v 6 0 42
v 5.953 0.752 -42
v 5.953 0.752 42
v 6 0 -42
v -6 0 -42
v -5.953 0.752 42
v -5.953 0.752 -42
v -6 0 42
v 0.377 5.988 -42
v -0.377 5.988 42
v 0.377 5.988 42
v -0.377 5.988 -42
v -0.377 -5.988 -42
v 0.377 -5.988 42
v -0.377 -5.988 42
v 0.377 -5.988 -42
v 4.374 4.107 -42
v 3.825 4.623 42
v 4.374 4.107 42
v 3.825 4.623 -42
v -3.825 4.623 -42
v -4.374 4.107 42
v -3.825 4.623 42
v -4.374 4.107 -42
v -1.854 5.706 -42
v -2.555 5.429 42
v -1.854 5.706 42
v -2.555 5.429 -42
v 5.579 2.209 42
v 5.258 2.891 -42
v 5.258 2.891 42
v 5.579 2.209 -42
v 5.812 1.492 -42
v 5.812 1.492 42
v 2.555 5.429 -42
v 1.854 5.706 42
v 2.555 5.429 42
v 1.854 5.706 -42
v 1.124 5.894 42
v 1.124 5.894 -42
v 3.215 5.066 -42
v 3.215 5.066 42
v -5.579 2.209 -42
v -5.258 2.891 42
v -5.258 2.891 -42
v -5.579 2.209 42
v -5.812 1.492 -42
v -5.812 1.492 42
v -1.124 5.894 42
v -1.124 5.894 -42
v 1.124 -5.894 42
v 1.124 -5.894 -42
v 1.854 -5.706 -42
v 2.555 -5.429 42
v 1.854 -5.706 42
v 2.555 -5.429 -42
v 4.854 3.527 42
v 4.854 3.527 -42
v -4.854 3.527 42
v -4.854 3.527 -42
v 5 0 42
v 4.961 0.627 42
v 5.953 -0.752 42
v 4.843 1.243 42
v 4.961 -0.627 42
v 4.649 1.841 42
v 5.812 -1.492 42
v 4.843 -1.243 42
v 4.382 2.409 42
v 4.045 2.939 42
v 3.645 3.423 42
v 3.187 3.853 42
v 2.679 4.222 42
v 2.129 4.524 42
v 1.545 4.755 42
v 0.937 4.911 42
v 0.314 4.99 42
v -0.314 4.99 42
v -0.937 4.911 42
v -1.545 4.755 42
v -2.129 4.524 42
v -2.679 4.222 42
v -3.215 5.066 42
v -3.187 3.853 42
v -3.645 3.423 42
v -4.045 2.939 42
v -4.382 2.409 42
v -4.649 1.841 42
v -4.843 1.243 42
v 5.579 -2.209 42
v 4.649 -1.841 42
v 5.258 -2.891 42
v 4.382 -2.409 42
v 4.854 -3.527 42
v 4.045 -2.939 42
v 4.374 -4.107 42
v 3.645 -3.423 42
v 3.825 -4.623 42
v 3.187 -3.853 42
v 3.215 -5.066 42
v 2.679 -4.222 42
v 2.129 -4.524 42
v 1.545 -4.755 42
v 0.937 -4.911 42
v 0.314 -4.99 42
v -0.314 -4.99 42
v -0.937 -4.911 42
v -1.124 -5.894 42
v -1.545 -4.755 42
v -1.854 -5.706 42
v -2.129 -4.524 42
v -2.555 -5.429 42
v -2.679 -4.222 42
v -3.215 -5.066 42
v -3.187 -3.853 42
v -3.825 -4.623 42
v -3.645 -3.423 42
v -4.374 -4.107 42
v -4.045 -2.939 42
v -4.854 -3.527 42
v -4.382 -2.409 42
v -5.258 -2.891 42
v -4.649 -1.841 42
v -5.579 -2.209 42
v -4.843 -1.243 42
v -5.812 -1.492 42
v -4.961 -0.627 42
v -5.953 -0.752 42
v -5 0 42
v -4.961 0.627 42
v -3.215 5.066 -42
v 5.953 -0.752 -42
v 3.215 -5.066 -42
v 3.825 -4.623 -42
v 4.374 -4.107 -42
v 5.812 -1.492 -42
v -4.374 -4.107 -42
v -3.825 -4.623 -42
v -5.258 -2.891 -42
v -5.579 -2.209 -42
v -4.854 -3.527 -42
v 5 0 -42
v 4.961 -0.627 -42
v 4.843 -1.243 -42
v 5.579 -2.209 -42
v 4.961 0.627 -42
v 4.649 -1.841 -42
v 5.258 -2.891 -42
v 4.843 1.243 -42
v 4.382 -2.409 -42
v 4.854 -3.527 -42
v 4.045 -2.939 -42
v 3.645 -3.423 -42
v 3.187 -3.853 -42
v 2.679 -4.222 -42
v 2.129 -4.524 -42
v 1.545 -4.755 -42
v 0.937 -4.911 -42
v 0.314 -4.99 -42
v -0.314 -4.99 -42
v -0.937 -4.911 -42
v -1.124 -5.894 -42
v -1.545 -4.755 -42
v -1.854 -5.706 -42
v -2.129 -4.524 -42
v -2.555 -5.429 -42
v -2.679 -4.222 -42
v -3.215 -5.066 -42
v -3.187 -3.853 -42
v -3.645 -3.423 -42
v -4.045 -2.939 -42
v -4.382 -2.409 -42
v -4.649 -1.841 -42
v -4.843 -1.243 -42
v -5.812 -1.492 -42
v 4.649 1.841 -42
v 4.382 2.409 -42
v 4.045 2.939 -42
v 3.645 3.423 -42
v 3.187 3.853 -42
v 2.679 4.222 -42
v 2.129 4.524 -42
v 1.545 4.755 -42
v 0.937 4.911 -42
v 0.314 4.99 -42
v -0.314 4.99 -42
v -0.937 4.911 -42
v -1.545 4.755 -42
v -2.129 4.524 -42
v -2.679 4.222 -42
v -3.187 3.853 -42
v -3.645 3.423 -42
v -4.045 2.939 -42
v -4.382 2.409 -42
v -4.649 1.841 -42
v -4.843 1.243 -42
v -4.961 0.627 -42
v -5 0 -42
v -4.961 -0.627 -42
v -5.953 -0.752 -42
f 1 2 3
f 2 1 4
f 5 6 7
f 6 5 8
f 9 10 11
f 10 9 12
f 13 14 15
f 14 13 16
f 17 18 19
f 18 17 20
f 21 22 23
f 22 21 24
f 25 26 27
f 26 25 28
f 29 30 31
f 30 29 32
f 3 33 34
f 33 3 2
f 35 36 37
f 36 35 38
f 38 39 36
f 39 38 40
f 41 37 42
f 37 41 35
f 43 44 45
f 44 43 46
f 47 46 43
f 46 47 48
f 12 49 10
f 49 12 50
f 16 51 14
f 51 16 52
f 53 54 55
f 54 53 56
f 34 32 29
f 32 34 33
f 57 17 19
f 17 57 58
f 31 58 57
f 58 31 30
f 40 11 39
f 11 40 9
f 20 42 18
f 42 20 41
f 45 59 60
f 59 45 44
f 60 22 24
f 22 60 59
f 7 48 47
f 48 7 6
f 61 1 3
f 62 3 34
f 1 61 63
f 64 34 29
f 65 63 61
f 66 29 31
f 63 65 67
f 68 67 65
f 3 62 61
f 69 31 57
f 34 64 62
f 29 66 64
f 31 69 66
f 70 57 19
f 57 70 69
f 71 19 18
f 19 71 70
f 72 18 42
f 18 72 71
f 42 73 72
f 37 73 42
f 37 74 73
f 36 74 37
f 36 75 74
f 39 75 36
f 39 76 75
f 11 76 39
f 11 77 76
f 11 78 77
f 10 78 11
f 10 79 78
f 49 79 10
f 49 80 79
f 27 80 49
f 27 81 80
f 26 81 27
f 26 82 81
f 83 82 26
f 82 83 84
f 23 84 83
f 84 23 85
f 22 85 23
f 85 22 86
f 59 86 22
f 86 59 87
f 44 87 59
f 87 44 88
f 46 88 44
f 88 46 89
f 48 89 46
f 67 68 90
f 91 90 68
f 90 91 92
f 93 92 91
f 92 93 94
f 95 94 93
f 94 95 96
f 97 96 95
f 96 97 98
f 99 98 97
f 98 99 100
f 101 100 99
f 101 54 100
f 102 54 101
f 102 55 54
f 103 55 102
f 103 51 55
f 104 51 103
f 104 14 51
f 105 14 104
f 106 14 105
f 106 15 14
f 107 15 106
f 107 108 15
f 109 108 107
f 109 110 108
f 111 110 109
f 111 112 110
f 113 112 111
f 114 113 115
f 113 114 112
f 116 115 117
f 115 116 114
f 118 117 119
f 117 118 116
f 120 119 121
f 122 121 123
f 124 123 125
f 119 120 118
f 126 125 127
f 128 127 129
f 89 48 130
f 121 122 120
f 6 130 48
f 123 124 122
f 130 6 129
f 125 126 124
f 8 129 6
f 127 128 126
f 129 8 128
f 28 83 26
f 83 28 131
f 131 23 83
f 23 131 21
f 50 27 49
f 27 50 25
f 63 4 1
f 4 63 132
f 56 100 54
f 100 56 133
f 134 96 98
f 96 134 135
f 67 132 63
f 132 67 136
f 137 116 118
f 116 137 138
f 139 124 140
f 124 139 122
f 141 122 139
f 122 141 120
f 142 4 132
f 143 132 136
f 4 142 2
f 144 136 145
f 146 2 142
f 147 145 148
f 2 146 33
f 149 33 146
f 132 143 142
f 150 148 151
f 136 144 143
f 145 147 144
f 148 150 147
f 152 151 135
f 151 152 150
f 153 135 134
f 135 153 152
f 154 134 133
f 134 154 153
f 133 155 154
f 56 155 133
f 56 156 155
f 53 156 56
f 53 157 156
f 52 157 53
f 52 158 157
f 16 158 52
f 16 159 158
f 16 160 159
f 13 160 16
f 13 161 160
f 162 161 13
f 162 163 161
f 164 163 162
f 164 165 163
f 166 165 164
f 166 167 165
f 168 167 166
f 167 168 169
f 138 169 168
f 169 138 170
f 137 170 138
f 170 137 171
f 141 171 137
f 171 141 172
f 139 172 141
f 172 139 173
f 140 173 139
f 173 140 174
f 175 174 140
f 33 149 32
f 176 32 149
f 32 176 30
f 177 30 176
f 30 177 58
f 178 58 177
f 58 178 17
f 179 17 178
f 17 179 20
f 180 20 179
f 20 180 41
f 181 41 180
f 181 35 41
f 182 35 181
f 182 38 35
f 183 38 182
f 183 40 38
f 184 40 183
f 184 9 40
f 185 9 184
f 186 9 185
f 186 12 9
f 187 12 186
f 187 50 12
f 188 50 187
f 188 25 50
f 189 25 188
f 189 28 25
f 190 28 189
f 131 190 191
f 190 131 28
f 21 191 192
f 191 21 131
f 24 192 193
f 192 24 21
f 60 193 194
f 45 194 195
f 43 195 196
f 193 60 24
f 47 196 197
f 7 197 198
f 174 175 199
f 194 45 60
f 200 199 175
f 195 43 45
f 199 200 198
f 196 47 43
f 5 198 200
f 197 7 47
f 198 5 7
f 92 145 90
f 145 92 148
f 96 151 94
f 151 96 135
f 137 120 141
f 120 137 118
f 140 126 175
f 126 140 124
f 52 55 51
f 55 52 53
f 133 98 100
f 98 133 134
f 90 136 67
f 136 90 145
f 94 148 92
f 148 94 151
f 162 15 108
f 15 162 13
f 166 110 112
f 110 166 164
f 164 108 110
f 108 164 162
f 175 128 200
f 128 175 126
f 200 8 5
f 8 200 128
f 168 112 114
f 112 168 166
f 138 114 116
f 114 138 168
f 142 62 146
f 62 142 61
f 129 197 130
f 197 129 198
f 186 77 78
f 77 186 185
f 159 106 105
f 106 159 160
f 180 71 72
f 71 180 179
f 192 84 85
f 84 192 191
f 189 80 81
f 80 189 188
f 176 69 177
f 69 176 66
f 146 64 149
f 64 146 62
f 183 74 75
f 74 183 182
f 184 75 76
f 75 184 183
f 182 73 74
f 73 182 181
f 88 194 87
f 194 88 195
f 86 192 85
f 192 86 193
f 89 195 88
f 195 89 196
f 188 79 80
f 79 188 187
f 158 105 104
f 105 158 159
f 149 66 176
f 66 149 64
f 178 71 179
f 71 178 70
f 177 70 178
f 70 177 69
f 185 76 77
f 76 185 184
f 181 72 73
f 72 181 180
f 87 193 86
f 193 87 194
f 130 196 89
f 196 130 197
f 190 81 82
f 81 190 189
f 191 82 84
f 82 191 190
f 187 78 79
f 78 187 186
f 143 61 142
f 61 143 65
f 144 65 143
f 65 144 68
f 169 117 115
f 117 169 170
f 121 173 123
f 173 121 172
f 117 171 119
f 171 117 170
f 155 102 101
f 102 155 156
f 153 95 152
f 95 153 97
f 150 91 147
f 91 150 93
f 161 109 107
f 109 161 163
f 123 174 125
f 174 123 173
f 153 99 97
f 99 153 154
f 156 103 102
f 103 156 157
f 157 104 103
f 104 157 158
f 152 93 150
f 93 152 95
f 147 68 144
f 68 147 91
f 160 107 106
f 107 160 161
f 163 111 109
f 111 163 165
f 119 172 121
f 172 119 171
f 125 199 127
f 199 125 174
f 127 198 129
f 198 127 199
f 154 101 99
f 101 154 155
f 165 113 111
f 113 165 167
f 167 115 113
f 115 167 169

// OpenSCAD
$fn = 50;


difference() {
	union() {
		translate(v = [0, 0, -42.0000000000]) {
			cylinder(h = 84, r = 6.0000000000);
		}
	}
	union() {
		translate(v = [0, 0, -100.0000000000]) {
			cylinder(h = 200, r = 5);
		}
	}
}
